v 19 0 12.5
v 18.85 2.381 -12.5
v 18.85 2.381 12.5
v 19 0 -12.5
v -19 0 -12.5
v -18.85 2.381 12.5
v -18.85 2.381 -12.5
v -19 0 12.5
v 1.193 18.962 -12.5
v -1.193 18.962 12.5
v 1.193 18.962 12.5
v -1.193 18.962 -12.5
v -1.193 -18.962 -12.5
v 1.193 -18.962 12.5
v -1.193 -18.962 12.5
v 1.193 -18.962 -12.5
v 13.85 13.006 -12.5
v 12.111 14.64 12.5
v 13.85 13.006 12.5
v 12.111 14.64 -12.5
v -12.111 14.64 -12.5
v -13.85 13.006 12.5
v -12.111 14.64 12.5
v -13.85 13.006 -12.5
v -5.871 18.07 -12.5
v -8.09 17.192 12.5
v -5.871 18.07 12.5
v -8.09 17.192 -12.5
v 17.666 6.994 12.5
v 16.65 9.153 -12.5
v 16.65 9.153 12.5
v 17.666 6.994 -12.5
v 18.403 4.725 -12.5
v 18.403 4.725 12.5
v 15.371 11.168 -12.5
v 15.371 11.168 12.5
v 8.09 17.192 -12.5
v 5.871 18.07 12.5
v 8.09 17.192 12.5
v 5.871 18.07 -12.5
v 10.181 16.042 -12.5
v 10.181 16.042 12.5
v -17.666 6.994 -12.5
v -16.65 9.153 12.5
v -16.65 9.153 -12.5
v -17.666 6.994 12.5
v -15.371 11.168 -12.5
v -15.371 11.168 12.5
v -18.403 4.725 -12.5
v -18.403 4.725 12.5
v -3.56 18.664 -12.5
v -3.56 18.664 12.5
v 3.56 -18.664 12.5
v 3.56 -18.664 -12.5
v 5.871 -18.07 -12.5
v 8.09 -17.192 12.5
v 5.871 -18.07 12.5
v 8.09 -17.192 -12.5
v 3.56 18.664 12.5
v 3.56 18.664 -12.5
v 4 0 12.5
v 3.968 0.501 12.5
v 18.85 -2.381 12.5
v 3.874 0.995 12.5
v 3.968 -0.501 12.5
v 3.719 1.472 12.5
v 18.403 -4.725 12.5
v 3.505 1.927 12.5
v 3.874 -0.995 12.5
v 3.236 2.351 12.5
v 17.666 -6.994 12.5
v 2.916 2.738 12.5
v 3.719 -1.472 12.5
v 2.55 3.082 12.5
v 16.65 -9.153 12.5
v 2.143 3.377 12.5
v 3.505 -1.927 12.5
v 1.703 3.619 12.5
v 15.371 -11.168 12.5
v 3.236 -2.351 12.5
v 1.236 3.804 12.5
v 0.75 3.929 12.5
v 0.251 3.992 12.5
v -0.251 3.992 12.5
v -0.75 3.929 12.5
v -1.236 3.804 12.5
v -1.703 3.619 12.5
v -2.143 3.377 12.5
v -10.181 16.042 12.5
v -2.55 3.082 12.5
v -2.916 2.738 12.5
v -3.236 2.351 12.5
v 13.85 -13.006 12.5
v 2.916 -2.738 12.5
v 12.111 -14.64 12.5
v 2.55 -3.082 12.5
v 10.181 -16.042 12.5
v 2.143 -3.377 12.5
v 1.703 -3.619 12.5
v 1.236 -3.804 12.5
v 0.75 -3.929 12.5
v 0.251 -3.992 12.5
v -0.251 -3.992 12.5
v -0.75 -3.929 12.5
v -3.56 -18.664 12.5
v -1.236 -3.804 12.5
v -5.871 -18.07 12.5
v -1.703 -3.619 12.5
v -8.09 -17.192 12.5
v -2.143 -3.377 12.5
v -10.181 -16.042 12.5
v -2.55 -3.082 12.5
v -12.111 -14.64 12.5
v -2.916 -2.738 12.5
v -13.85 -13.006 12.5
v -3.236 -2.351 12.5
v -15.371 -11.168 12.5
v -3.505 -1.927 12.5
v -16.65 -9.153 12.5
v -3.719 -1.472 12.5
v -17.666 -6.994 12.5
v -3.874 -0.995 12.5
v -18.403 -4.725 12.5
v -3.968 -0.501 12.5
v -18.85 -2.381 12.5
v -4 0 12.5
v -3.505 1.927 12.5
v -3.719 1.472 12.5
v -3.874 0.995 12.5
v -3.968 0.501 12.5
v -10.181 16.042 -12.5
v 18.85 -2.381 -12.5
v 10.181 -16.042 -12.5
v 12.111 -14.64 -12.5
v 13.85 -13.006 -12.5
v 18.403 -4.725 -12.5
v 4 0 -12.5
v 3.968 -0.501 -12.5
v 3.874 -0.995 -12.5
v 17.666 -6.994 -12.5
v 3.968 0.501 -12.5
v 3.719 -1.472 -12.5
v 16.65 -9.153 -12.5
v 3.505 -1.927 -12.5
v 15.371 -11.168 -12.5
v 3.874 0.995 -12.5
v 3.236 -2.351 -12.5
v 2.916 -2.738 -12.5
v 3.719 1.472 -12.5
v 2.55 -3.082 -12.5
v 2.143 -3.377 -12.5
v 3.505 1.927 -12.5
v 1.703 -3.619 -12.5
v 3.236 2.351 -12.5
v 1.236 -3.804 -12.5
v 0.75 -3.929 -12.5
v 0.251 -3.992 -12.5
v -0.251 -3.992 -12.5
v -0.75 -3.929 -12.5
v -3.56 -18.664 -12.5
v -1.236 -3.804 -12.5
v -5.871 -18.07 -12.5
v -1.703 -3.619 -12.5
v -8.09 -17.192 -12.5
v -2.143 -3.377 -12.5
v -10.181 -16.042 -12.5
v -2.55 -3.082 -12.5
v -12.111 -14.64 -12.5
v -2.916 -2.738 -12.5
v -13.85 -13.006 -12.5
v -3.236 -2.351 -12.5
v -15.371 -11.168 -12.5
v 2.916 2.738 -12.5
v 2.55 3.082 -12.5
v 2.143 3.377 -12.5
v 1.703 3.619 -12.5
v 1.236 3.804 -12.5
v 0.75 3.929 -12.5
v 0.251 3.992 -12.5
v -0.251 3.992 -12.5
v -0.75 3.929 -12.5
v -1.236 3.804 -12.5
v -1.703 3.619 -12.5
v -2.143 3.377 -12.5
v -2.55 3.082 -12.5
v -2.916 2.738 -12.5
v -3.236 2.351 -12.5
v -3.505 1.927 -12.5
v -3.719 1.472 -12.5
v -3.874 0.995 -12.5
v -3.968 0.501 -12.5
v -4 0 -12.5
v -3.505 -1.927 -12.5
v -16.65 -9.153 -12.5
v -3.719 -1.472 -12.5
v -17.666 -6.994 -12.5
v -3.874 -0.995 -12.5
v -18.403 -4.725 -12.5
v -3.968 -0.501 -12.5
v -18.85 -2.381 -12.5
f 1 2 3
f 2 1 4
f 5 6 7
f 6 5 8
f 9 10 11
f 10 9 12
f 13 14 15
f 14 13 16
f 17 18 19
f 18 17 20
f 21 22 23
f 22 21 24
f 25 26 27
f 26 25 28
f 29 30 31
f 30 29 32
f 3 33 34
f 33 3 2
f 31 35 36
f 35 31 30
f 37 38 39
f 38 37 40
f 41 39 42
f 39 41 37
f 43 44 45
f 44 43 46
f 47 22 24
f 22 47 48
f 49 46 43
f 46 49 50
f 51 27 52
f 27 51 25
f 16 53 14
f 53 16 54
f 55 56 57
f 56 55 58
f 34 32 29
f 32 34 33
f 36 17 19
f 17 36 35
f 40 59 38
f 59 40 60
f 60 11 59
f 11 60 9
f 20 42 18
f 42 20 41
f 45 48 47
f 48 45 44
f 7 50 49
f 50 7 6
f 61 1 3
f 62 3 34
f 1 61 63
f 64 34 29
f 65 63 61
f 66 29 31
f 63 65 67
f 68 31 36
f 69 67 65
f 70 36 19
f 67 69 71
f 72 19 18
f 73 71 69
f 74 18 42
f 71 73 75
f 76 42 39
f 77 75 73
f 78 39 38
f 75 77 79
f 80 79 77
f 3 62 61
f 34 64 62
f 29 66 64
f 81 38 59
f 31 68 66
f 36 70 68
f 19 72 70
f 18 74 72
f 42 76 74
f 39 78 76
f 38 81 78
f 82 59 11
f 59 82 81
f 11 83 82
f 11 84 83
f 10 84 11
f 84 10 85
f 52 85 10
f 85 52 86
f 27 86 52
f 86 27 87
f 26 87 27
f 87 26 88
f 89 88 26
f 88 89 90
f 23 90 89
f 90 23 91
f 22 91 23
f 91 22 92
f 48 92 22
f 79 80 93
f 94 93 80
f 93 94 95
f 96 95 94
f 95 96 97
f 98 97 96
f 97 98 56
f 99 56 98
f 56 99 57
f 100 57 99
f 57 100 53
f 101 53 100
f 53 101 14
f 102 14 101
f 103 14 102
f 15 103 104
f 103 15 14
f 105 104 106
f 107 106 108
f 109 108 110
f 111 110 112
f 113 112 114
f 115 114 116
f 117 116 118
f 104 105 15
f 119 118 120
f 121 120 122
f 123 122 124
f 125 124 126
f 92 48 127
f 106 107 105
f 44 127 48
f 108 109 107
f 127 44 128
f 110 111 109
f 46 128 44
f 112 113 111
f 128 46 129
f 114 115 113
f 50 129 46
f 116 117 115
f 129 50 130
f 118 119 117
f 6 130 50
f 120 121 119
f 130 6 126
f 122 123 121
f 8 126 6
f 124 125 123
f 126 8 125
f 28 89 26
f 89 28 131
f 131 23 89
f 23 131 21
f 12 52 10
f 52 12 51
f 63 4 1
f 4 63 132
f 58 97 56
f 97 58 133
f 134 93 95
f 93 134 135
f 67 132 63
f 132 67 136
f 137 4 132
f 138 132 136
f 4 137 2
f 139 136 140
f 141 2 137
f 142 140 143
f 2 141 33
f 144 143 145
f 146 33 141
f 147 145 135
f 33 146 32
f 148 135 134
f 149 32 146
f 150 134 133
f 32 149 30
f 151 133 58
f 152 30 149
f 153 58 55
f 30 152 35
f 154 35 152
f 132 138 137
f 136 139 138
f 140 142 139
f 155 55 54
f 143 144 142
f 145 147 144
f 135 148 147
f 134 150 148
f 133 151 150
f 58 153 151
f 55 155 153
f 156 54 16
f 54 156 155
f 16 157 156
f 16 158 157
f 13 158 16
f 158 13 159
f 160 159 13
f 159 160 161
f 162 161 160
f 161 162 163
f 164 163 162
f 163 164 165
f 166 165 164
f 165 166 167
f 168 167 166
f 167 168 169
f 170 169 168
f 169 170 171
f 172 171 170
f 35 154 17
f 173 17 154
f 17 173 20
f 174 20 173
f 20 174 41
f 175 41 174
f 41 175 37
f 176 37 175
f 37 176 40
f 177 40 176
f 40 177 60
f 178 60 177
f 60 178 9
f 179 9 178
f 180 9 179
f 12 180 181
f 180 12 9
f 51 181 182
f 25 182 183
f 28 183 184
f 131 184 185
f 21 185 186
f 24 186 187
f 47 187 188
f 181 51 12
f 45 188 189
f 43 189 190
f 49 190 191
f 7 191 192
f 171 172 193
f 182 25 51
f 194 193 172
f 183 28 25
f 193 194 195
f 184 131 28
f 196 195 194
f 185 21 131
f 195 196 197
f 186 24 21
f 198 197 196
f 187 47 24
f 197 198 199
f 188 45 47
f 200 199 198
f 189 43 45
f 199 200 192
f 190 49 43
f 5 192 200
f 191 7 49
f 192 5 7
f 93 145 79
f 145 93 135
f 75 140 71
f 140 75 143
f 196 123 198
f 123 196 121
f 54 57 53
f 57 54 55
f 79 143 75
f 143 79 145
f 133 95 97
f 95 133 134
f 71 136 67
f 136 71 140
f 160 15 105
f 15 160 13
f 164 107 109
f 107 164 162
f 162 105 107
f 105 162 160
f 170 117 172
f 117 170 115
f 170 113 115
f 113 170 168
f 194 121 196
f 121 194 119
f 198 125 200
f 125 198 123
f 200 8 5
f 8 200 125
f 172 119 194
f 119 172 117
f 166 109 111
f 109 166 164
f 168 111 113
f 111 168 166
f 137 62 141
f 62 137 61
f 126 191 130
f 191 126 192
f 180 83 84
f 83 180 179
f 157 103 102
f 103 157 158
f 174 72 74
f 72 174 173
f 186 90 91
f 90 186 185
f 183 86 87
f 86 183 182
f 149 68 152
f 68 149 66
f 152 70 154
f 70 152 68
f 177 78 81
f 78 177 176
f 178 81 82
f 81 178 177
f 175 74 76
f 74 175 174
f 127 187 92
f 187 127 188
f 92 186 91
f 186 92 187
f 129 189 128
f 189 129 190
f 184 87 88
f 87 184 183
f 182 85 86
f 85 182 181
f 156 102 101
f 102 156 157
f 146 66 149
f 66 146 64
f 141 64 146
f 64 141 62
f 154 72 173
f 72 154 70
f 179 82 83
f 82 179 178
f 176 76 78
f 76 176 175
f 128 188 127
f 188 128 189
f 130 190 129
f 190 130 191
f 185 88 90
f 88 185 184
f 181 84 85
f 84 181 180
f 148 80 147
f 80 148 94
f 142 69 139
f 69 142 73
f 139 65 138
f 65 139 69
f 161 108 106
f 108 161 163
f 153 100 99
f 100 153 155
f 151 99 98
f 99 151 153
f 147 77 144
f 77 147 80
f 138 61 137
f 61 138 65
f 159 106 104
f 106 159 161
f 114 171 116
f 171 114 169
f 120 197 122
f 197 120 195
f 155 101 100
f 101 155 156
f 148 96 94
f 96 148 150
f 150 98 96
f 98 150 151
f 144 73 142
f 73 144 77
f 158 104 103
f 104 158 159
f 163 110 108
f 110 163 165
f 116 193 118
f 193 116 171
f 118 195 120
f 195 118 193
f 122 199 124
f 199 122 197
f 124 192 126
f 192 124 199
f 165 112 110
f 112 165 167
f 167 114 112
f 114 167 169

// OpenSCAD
$fn = 50;


difference() {
	union() {
		translate(v = [0, 0, -12.5000000000]) {
			cylinder(h = 25, r = 19.0000000000);
		}
	}
	union() {
		translate(v = [0, 0, -100.0000000000]) {
			cylinder(h = 200, r = 4.0000000000);
		}
	}
}
